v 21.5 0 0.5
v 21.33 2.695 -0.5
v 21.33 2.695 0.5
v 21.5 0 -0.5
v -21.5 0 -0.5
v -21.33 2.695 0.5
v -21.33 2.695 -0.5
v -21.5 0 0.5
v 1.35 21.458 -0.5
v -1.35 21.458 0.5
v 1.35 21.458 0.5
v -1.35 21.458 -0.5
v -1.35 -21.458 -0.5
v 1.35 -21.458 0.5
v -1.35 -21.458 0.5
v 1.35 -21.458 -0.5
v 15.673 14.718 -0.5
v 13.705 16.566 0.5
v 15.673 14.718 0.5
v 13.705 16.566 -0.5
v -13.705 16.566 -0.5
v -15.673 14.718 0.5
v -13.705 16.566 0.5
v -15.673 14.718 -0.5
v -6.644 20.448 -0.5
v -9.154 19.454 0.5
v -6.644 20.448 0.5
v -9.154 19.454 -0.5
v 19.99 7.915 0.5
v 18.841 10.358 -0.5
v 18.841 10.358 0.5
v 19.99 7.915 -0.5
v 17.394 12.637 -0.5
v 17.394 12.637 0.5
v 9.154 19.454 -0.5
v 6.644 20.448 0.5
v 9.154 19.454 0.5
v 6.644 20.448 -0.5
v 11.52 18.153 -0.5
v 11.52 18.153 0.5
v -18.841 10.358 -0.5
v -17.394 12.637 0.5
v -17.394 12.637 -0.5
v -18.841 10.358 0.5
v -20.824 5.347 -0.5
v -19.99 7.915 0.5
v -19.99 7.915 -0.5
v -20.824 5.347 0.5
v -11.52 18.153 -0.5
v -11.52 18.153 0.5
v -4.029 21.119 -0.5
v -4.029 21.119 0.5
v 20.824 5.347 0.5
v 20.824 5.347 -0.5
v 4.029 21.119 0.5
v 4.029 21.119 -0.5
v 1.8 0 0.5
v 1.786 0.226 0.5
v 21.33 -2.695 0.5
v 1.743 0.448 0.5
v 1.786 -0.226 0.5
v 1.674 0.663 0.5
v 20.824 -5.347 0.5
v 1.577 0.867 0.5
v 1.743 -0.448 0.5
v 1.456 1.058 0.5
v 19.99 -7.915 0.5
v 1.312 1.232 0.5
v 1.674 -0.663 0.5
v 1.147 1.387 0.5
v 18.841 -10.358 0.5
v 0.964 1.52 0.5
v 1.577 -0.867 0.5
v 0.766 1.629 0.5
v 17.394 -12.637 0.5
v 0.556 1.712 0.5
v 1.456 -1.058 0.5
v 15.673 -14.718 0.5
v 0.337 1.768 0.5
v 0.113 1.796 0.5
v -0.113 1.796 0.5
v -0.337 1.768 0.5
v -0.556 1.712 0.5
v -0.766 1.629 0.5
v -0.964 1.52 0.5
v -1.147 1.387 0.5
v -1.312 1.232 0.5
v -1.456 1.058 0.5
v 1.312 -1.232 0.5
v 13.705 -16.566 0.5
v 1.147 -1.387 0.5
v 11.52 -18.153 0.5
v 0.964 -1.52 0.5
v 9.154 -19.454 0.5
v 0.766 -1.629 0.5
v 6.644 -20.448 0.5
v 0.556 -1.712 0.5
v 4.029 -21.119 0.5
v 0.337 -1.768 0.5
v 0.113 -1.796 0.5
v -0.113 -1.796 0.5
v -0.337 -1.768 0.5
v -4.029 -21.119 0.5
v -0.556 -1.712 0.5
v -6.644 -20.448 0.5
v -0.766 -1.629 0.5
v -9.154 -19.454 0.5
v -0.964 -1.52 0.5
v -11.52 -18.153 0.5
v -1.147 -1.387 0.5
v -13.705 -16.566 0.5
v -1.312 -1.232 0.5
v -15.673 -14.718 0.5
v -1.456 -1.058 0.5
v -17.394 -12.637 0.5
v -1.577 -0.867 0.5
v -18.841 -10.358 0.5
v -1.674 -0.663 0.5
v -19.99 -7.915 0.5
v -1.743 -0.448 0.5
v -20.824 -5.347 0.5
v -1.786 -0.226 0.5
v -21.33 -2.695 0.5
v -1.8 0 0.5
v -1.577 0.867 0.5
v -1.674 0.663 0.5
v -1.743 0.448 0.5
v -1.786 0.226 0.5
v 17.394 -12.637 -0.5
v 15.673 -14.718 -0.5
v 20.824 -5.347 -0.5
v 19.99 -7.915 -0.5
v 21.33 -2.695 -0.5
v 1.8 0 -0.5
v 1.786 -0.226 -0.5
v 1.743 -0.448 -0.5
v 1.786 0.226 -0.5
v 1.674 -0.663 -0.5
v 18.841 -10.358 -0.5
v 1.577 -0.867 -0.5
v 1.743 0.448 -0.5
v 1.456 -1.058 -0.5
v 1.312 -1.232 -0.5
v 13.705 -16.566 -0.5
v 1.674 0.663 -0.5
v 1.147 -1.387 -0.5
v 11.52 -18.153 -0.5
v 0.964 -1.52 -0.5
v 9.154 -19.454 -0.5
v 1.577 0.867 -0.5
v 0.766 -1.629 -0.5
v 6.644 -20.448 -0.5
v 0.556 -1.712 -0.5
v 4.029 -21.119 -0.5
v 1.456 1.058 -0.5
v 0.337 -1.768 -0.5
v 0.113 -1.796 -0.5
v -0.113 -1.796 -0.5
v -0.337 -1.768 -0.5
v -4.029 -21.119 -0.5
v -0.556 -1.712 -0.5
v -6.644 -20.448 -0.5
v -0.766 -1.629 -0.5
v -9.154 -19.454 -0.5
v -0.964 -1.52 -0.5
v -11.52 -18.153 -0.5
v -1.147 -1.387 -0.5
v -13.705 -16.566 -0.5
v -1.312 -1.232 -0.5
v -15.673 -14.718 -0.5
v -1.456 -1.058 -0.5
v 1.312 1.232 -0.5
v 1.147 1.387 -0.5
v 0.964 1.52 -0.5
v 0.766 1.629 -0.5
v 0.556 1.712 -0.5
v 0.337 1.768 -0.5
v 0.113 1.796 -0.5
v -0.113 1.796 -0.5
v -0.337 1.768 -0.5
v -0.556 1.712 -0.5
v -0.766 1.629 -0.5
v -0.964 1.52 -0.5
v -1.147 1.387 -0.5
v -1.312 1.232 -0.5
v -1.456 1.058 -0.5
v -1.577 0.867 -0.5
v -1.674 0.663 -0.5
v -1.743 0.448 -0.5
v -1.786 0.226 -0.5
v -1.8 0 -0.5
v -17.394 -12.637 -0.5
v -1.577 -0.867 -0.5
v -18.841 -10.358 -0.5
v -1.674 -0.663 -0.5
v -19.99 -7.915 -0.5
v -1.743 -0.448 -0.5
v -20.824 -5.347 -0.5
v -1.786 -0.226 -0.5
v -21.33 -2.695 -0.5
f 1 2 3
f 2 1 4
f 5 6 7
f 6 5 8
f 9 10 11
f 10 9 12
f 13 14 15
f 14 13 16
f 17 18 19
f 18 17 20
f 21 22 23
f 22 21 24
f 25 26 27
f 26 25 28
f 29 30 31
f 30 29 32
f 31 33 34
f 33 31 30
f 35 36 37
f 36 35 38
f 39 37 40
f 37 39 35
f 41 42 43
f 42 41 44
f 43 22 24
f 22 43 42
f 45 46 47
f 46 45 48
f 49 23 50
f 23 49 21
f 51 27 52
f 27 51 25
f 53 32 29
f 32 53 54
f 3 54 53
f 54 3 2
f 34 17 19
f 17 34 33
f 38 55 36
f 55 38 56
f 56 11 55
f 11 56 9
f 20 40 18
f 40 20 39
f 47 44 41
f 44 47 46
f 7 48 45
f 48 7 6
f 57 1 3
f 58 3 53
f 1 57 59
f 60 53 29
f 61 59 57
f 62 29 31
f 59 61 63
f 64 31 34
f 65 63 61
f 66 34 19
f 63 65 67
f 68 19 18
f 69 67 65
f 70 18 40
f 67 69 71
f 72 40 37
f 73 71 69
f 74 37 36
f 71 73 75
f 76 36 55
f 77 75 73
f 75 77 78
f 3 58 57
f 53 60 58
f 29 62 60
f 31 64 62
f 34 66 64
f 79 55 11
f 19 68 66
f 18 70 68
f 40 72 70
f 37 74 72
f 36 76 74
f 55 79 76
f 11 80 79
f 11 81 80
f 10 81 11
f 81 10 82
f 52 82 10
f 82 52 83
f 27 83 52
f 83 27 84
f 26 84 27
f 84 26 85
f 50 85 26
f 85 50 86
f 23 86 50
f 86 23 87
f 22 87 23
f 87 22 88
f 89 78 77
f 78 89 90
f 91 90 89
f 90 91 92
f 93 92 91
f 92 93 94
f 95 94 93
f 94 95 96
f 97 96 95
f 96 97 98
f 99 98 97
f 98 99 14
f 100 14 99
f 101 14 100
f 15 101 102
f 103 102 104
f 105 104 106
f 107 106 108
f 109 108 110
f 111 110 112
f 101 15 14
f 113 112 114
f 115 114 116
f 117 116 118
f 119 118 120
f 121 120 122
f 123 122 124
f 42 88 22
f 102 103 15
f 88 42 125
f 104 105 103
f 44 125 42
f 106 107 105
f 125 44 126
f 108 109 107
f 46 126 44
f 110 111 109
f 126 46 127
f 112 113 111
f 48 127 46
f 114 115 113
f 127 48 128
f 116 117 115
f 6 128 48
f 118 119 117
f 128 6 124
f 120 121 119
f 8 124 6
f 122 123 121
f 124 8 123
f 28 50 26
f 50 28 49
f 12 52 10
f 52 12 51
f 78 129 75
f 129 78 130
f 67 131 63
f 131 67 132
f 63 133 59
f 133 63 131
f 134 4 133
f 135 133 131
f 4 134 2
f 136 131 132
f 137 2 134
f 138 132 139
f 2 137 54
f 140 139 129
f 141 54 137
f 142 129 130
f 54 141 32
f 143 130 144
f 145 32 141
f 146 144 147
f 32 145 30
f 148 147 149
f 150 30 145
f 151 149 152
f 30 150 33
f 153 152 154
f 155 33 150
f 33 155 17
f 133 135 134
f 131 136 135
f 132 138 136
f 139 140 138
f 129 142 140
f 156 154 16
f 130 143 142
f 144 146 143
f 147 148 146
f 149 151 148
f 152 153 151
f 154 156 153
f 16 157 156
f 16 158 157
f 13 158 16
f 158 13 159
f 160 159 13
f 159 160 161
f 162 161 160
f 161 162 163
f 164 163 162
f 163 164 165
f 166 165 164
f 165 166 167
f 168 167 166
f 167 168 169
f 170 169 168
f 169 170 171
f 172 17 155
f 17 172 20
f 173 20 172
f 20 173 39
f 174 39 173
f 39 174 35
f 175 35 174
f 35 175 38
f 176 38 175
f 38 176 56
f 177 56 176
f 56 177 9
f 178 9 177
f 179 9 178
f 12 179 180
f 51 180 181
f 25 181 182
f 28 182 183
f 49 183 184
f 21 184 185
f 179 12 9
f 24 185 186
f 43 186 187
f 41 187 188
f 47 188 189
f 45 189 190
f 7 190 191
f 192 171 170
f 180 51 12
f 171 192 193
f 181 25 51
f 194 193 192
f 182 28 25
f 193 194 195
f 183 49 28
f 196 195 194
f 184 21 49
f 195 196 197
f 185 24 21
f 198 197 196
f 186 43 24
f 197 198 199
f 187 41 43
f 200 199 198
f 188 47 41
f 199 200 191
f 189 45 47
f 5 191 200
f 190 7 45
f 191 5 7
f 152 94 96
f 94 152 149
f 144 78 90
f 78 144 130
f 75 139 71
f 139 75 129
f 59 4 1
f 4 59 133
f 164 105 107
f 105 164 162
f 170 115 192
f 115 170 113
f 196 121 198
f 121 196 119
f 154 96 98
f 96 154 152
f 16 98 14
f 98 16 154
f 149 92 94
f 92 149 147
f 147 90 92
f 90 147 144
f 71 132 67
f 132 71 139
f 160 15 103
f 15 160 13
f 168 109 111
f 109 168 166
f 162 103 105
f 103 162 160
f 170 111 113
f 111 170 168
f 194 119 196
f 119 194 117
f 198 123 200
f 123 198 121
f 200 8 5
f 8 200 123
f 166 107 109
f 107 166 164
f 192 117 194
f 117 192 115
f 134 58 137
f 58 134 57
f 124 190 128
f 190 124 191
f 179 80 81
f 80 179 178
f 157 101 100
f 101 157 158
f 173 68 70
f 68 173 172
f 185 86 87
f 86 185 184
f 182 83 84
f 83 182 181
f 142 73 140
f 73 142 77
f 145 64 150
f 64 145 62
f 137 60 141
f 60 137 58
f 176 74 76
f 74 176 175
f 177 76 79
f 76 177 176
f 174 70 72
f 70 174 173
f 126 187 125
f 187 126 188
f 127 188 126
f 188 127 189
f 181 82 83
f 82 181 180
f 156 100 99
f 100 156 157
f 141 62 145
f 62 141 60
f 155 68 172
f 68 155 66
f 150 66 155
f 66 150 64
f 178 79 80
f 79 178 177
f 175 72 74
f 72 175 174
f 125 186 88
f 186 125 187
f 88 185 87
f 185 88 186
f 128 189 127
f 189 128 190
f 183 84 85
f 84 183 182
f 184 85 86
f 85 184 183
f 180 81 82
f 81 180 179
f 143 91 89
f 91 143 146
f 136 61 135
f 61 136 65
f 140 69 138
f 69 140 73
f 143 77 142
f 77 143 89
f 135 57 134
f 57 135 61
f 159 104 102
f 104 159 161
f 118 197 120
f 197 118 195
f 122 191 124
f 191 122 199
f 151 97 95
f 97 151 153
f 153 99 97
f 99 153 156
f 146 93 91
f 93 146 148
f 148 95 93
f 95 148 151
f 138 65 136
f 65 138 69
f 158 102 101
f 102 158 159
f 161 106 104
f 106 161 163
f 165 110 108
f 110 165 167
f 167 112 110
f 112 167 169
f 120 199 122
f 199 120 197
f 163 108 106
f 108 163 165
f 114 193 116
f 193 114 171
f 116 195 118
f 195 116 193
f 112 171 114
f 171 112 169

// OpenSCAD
$fn = 50;


difference() {
	union() {
		translate(v = [0, 0, -0.5000000000]) {
			cylinder(h = 1, r = 21.5000000000);
		}
	}
	union() {
		translate(v = [0, 0, -100.0000000000]) {
			cylinder(h = 200, r = 1.8000000000);
		}
	}
}
